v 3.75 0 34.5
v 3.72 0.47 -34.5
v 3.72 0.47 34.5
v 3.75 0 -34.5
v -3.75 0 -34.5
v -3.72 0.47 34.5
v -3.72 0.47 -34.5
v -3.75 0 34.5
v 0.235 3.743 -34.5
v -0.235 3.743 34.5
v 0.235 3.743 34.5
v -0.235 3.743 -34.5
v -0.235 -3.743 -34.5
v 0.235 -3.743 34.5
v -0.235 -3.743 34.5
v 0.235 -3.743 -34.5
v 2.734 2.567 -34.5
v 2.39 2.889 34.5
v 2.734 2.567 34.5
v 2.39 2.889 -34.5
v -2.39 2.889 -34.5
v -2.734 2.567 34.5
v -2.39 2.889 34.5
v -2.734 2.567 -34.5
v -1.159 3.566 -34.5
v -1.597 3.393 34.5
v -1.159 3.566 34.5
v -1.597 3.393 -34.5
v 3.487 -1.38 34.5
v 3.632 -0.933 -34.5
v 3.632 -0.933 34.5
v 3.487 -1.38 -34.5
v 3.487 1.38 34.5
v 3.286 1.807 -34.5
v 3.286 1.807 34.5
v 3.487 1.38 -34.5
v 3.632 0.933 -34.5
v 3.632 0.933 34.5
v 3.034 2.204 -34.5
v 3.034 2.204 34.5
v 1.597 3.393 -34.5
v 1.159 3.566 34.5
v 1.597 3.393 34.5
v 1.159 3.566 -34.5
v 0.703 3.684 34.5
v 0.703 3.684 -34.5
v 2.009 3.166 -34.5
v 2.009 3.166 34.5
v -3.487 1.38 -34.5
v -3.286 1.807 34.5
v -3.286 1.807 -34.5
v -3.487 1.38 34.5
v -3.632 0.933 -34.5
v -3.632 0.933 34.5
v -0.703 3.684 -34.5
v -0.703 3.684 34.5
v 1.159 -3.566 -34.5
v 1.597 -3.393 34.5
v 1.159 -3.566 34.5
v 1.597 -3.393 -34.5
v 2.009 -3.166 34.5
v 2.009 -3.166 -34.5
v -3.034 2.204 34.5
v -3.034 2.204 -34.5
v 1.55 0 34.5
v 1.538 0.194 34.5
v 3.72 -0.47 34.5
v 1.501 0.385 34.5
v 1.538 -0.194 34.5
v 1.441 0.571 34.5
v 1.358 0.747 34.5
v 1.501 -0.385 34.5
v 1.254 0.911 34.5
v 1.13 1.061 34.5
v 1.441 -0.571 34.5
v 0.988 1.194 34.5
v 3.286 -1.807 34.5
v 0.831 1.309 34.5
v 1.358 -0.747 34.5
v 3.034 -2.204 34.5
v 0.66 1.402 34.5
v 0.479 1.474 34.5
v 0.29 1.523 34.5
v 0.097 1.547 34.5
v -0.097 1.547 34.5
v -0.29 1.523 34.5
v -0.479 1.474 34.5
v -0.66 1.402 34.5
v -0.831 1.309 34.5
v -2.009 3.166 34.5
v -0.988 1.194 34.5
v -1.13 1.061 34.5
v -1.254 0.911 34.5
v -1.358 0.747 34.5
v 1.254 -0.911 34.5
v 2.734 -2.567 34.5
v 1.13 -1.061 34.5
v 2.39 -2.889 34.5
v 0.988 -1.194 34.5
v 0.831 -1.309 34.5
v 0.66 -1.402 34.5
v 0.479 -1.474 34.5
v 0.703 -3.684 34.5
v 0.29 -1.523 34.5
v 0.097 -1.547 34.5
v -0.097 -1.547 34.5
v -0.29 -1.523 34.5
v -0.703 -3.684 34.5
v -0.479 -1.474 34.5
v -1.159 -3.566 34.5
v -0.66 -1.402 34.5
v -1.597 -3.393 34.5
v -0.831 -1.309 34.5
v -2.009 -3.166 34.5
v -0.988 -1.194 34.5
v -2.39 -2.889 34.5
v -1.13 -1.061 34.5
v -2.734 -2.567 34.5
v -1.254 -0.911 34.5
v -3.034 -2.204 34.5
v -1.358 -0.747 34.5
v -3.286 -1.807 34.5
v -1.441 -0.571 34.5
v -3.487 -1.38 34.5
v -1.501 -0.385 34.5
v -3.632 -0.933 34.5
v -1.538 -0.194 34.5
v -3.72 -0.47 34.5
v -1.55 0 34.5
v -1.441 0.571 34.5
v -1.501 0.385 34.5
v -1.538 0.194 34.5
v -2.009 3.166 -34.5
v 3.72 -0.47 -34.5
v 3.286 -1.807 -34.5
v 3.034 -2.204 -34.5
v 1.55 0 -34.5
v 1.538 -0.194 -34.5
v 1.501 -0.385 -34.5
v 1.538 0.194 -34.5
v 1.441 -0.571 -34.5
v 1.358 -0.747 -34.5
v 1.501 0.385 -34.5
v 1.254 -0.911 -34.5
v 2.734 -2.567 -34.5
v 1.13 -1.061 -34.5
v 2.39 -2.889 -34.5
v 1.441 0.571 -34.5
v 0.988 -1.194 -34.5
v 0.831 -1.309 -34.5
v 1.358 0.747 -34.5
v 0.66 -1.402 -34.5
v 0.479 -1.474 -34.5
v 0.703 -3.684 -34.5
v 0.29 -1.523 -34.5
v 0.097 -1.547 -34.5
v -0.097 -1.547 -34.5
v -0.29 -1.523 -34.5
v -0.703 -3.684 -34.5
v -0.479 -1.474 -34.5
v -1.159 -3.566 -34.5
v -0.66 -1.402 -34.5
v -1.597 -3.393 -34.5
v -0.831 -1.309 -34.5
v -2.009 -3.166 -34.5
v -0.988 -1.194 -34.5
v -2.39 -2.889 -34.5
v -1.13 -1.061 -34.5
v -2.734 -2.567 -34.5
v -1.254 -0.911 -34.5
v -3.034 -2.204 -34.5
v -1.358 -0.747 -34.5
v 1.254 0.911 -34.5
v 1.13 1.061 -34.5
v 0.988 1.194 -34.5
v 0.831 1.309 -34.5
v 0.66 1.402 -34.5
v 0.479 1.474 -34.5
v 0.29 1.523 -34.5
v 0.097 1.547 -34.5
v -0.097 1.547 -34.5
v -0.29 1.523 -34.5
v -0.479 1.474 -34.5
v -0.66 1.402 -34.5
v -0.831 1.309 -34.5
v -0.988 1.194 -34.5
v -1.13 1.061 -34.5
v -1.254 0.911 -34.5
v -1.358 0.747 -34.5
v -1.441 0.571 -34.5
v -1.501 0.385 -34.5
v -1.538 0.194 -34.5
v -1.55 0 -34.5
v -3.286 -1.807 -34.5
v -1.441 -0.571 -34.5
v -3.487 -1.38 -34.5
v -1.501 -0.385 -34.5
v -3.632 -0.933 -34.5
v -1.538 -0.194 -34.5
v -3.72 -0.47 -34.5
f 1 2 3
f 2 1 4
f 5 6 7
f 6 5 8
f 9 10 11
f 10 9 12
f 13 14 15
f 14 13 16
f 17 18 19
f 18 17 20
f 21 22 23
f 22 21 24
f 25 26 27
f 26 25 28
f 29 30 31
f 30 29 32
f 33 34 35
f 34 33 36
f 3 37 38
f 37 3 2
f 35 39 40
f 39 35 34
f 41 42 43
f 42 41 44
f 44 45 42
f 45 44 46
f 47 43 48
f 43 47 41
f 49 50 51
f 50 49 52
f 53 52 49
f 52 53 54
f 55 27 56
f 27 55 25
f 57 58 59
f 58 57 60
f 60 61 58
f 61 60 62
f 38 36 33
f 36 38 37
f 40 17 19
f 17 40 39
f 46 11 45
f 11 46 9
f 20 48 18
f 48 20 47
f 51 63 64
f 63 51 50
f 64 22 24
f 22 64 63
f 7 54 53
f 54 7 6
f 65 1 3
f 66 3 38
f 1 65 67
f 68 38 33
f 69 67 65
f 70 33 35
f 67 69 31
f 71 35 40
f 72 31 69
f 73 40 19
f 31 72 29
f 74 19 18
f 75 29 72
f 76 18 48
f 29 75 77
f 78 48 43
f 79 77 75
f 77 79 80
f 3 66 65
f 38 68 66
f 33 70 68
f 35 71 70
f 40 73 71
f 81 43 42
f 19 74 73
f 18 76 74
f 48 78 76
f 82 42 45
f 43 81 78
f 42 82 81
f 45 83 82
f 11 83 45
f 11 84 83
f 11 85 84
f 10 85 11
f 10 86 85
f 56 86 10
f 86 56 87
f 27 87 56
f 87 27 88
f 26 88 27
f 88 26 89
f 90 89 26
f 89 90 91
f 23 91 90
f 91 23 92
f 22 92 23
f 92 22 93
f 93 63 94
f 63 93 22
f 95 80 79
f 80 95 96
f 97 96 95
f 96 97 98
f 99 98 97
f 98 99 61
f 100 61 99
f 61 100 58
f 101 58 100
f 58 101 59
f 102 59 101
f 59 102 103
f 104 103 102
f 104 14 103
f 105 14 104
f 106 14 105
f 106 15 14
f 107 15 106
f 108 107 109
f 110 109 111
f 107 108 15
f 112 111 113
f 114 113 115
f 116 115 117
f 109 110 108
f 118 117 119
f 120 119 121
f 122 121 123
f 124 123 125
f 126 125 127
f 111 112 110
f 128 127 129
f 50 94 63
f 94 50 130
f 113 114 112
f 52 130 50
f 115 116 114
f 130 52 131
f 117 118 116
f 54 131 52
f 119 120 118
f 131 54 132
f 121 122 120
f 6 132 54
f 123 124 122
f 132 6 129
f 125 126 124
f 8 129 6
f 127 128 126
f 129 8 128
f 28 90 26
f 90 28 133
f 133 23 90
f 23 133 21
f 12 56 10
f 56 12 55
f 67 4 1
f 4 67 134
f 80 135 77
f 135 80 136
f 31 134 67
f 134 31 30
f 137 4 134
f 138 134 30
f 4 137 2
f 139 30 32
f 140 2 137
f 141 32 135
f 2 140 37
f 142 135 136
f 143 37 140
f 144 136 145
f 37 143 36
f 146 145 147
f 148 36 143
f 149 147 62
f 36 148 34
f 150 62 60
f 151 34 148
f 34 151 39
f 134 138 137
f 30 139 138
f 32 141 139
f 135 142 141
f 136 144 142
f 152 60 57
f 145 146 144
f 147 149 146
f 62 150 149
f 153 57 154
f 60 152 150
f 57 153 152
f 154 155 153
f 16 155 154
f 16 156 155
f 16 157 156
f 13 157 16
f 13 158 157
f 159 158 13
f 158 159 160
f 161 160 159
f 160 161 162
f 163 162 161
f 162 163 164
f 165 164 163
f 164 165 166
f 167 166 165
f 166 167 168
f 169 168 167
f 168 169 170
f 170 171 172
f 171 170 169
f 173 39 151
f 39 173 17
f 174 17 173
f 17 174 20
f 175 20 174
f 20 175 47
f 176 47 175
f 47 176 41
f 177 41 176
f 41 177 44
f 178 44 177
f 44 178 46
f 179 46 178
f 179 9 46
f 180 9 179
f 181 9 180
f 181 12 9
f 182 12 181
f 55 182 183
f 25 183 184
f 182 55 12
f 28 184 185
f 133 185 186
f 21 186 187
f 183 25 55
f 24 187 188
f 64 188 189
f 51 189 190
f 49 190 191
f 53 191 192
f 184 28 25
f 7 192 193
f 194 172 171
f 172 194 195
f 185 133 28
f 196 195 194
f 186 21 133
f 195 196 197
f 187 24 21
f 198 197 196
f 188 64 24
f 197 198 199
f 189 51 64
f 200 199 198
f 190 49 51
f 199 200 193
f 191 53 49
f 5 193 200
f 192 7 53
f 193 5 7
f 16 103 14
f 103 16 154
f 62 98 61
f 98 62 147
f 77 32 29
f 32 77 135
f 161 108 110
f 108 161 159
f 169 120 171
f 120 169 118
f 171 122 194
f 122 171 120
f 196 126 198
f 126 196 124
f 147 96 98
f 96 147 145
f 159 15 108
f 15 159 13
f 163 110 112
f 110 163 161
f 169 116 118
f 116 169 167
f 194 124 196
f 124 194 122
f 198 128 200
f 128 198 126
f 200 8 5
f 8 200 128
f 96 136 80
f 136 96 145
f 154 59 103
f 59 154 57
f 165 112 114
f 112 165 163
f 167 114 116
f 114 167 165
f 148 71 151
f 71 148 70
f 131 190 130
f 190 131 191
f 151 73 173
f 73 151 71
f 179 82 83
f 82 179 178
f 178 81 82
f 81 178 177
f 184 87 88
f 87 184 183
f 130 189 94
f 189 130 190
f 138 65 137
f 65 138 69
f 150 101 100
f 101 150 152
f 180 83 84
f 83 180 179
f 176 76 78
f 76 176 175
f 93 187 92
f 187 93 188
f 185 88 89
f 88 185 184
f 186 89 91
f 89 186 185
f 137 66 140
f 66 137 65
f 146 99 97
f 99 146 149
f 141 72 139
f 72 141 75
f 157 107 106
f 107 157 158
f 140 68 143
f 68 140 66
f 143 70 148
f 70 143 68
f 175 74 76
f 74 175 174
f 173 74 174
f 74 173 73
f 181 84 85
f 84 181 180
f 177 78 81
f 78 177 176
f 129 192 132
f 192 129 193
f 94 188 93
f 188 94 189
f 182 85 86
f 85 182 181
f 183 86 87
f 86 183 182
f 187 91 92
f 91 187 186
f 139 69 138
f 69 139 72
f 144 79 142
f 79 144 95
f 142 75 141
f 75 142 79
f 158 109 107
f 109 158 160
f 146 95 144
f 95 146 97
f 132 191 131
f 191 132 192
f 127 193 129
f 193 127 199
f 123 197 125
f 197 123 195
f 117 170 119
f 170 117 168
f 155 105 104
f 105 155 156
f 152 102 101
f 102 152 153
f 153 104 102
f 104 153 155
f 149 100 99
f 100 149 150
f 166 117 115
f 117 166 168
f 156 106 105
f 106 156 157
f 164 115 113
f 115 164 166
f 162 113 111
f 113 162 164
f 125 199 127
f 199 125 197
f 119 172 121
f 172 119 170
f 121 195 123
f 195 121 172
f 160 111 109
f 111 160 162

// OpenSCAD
$fn = 50;


difference() {
	union() {
		translate(v = [0, 0, -34.5000000000]) {
			cylinder(h = 69, r = 3.7500000000);
		}
	}
	union() {
		translate(v = [0, 0, -100.0000000000]) {
			cylinder(h = 200, r = 1.5500000000);
		}
	}
}
